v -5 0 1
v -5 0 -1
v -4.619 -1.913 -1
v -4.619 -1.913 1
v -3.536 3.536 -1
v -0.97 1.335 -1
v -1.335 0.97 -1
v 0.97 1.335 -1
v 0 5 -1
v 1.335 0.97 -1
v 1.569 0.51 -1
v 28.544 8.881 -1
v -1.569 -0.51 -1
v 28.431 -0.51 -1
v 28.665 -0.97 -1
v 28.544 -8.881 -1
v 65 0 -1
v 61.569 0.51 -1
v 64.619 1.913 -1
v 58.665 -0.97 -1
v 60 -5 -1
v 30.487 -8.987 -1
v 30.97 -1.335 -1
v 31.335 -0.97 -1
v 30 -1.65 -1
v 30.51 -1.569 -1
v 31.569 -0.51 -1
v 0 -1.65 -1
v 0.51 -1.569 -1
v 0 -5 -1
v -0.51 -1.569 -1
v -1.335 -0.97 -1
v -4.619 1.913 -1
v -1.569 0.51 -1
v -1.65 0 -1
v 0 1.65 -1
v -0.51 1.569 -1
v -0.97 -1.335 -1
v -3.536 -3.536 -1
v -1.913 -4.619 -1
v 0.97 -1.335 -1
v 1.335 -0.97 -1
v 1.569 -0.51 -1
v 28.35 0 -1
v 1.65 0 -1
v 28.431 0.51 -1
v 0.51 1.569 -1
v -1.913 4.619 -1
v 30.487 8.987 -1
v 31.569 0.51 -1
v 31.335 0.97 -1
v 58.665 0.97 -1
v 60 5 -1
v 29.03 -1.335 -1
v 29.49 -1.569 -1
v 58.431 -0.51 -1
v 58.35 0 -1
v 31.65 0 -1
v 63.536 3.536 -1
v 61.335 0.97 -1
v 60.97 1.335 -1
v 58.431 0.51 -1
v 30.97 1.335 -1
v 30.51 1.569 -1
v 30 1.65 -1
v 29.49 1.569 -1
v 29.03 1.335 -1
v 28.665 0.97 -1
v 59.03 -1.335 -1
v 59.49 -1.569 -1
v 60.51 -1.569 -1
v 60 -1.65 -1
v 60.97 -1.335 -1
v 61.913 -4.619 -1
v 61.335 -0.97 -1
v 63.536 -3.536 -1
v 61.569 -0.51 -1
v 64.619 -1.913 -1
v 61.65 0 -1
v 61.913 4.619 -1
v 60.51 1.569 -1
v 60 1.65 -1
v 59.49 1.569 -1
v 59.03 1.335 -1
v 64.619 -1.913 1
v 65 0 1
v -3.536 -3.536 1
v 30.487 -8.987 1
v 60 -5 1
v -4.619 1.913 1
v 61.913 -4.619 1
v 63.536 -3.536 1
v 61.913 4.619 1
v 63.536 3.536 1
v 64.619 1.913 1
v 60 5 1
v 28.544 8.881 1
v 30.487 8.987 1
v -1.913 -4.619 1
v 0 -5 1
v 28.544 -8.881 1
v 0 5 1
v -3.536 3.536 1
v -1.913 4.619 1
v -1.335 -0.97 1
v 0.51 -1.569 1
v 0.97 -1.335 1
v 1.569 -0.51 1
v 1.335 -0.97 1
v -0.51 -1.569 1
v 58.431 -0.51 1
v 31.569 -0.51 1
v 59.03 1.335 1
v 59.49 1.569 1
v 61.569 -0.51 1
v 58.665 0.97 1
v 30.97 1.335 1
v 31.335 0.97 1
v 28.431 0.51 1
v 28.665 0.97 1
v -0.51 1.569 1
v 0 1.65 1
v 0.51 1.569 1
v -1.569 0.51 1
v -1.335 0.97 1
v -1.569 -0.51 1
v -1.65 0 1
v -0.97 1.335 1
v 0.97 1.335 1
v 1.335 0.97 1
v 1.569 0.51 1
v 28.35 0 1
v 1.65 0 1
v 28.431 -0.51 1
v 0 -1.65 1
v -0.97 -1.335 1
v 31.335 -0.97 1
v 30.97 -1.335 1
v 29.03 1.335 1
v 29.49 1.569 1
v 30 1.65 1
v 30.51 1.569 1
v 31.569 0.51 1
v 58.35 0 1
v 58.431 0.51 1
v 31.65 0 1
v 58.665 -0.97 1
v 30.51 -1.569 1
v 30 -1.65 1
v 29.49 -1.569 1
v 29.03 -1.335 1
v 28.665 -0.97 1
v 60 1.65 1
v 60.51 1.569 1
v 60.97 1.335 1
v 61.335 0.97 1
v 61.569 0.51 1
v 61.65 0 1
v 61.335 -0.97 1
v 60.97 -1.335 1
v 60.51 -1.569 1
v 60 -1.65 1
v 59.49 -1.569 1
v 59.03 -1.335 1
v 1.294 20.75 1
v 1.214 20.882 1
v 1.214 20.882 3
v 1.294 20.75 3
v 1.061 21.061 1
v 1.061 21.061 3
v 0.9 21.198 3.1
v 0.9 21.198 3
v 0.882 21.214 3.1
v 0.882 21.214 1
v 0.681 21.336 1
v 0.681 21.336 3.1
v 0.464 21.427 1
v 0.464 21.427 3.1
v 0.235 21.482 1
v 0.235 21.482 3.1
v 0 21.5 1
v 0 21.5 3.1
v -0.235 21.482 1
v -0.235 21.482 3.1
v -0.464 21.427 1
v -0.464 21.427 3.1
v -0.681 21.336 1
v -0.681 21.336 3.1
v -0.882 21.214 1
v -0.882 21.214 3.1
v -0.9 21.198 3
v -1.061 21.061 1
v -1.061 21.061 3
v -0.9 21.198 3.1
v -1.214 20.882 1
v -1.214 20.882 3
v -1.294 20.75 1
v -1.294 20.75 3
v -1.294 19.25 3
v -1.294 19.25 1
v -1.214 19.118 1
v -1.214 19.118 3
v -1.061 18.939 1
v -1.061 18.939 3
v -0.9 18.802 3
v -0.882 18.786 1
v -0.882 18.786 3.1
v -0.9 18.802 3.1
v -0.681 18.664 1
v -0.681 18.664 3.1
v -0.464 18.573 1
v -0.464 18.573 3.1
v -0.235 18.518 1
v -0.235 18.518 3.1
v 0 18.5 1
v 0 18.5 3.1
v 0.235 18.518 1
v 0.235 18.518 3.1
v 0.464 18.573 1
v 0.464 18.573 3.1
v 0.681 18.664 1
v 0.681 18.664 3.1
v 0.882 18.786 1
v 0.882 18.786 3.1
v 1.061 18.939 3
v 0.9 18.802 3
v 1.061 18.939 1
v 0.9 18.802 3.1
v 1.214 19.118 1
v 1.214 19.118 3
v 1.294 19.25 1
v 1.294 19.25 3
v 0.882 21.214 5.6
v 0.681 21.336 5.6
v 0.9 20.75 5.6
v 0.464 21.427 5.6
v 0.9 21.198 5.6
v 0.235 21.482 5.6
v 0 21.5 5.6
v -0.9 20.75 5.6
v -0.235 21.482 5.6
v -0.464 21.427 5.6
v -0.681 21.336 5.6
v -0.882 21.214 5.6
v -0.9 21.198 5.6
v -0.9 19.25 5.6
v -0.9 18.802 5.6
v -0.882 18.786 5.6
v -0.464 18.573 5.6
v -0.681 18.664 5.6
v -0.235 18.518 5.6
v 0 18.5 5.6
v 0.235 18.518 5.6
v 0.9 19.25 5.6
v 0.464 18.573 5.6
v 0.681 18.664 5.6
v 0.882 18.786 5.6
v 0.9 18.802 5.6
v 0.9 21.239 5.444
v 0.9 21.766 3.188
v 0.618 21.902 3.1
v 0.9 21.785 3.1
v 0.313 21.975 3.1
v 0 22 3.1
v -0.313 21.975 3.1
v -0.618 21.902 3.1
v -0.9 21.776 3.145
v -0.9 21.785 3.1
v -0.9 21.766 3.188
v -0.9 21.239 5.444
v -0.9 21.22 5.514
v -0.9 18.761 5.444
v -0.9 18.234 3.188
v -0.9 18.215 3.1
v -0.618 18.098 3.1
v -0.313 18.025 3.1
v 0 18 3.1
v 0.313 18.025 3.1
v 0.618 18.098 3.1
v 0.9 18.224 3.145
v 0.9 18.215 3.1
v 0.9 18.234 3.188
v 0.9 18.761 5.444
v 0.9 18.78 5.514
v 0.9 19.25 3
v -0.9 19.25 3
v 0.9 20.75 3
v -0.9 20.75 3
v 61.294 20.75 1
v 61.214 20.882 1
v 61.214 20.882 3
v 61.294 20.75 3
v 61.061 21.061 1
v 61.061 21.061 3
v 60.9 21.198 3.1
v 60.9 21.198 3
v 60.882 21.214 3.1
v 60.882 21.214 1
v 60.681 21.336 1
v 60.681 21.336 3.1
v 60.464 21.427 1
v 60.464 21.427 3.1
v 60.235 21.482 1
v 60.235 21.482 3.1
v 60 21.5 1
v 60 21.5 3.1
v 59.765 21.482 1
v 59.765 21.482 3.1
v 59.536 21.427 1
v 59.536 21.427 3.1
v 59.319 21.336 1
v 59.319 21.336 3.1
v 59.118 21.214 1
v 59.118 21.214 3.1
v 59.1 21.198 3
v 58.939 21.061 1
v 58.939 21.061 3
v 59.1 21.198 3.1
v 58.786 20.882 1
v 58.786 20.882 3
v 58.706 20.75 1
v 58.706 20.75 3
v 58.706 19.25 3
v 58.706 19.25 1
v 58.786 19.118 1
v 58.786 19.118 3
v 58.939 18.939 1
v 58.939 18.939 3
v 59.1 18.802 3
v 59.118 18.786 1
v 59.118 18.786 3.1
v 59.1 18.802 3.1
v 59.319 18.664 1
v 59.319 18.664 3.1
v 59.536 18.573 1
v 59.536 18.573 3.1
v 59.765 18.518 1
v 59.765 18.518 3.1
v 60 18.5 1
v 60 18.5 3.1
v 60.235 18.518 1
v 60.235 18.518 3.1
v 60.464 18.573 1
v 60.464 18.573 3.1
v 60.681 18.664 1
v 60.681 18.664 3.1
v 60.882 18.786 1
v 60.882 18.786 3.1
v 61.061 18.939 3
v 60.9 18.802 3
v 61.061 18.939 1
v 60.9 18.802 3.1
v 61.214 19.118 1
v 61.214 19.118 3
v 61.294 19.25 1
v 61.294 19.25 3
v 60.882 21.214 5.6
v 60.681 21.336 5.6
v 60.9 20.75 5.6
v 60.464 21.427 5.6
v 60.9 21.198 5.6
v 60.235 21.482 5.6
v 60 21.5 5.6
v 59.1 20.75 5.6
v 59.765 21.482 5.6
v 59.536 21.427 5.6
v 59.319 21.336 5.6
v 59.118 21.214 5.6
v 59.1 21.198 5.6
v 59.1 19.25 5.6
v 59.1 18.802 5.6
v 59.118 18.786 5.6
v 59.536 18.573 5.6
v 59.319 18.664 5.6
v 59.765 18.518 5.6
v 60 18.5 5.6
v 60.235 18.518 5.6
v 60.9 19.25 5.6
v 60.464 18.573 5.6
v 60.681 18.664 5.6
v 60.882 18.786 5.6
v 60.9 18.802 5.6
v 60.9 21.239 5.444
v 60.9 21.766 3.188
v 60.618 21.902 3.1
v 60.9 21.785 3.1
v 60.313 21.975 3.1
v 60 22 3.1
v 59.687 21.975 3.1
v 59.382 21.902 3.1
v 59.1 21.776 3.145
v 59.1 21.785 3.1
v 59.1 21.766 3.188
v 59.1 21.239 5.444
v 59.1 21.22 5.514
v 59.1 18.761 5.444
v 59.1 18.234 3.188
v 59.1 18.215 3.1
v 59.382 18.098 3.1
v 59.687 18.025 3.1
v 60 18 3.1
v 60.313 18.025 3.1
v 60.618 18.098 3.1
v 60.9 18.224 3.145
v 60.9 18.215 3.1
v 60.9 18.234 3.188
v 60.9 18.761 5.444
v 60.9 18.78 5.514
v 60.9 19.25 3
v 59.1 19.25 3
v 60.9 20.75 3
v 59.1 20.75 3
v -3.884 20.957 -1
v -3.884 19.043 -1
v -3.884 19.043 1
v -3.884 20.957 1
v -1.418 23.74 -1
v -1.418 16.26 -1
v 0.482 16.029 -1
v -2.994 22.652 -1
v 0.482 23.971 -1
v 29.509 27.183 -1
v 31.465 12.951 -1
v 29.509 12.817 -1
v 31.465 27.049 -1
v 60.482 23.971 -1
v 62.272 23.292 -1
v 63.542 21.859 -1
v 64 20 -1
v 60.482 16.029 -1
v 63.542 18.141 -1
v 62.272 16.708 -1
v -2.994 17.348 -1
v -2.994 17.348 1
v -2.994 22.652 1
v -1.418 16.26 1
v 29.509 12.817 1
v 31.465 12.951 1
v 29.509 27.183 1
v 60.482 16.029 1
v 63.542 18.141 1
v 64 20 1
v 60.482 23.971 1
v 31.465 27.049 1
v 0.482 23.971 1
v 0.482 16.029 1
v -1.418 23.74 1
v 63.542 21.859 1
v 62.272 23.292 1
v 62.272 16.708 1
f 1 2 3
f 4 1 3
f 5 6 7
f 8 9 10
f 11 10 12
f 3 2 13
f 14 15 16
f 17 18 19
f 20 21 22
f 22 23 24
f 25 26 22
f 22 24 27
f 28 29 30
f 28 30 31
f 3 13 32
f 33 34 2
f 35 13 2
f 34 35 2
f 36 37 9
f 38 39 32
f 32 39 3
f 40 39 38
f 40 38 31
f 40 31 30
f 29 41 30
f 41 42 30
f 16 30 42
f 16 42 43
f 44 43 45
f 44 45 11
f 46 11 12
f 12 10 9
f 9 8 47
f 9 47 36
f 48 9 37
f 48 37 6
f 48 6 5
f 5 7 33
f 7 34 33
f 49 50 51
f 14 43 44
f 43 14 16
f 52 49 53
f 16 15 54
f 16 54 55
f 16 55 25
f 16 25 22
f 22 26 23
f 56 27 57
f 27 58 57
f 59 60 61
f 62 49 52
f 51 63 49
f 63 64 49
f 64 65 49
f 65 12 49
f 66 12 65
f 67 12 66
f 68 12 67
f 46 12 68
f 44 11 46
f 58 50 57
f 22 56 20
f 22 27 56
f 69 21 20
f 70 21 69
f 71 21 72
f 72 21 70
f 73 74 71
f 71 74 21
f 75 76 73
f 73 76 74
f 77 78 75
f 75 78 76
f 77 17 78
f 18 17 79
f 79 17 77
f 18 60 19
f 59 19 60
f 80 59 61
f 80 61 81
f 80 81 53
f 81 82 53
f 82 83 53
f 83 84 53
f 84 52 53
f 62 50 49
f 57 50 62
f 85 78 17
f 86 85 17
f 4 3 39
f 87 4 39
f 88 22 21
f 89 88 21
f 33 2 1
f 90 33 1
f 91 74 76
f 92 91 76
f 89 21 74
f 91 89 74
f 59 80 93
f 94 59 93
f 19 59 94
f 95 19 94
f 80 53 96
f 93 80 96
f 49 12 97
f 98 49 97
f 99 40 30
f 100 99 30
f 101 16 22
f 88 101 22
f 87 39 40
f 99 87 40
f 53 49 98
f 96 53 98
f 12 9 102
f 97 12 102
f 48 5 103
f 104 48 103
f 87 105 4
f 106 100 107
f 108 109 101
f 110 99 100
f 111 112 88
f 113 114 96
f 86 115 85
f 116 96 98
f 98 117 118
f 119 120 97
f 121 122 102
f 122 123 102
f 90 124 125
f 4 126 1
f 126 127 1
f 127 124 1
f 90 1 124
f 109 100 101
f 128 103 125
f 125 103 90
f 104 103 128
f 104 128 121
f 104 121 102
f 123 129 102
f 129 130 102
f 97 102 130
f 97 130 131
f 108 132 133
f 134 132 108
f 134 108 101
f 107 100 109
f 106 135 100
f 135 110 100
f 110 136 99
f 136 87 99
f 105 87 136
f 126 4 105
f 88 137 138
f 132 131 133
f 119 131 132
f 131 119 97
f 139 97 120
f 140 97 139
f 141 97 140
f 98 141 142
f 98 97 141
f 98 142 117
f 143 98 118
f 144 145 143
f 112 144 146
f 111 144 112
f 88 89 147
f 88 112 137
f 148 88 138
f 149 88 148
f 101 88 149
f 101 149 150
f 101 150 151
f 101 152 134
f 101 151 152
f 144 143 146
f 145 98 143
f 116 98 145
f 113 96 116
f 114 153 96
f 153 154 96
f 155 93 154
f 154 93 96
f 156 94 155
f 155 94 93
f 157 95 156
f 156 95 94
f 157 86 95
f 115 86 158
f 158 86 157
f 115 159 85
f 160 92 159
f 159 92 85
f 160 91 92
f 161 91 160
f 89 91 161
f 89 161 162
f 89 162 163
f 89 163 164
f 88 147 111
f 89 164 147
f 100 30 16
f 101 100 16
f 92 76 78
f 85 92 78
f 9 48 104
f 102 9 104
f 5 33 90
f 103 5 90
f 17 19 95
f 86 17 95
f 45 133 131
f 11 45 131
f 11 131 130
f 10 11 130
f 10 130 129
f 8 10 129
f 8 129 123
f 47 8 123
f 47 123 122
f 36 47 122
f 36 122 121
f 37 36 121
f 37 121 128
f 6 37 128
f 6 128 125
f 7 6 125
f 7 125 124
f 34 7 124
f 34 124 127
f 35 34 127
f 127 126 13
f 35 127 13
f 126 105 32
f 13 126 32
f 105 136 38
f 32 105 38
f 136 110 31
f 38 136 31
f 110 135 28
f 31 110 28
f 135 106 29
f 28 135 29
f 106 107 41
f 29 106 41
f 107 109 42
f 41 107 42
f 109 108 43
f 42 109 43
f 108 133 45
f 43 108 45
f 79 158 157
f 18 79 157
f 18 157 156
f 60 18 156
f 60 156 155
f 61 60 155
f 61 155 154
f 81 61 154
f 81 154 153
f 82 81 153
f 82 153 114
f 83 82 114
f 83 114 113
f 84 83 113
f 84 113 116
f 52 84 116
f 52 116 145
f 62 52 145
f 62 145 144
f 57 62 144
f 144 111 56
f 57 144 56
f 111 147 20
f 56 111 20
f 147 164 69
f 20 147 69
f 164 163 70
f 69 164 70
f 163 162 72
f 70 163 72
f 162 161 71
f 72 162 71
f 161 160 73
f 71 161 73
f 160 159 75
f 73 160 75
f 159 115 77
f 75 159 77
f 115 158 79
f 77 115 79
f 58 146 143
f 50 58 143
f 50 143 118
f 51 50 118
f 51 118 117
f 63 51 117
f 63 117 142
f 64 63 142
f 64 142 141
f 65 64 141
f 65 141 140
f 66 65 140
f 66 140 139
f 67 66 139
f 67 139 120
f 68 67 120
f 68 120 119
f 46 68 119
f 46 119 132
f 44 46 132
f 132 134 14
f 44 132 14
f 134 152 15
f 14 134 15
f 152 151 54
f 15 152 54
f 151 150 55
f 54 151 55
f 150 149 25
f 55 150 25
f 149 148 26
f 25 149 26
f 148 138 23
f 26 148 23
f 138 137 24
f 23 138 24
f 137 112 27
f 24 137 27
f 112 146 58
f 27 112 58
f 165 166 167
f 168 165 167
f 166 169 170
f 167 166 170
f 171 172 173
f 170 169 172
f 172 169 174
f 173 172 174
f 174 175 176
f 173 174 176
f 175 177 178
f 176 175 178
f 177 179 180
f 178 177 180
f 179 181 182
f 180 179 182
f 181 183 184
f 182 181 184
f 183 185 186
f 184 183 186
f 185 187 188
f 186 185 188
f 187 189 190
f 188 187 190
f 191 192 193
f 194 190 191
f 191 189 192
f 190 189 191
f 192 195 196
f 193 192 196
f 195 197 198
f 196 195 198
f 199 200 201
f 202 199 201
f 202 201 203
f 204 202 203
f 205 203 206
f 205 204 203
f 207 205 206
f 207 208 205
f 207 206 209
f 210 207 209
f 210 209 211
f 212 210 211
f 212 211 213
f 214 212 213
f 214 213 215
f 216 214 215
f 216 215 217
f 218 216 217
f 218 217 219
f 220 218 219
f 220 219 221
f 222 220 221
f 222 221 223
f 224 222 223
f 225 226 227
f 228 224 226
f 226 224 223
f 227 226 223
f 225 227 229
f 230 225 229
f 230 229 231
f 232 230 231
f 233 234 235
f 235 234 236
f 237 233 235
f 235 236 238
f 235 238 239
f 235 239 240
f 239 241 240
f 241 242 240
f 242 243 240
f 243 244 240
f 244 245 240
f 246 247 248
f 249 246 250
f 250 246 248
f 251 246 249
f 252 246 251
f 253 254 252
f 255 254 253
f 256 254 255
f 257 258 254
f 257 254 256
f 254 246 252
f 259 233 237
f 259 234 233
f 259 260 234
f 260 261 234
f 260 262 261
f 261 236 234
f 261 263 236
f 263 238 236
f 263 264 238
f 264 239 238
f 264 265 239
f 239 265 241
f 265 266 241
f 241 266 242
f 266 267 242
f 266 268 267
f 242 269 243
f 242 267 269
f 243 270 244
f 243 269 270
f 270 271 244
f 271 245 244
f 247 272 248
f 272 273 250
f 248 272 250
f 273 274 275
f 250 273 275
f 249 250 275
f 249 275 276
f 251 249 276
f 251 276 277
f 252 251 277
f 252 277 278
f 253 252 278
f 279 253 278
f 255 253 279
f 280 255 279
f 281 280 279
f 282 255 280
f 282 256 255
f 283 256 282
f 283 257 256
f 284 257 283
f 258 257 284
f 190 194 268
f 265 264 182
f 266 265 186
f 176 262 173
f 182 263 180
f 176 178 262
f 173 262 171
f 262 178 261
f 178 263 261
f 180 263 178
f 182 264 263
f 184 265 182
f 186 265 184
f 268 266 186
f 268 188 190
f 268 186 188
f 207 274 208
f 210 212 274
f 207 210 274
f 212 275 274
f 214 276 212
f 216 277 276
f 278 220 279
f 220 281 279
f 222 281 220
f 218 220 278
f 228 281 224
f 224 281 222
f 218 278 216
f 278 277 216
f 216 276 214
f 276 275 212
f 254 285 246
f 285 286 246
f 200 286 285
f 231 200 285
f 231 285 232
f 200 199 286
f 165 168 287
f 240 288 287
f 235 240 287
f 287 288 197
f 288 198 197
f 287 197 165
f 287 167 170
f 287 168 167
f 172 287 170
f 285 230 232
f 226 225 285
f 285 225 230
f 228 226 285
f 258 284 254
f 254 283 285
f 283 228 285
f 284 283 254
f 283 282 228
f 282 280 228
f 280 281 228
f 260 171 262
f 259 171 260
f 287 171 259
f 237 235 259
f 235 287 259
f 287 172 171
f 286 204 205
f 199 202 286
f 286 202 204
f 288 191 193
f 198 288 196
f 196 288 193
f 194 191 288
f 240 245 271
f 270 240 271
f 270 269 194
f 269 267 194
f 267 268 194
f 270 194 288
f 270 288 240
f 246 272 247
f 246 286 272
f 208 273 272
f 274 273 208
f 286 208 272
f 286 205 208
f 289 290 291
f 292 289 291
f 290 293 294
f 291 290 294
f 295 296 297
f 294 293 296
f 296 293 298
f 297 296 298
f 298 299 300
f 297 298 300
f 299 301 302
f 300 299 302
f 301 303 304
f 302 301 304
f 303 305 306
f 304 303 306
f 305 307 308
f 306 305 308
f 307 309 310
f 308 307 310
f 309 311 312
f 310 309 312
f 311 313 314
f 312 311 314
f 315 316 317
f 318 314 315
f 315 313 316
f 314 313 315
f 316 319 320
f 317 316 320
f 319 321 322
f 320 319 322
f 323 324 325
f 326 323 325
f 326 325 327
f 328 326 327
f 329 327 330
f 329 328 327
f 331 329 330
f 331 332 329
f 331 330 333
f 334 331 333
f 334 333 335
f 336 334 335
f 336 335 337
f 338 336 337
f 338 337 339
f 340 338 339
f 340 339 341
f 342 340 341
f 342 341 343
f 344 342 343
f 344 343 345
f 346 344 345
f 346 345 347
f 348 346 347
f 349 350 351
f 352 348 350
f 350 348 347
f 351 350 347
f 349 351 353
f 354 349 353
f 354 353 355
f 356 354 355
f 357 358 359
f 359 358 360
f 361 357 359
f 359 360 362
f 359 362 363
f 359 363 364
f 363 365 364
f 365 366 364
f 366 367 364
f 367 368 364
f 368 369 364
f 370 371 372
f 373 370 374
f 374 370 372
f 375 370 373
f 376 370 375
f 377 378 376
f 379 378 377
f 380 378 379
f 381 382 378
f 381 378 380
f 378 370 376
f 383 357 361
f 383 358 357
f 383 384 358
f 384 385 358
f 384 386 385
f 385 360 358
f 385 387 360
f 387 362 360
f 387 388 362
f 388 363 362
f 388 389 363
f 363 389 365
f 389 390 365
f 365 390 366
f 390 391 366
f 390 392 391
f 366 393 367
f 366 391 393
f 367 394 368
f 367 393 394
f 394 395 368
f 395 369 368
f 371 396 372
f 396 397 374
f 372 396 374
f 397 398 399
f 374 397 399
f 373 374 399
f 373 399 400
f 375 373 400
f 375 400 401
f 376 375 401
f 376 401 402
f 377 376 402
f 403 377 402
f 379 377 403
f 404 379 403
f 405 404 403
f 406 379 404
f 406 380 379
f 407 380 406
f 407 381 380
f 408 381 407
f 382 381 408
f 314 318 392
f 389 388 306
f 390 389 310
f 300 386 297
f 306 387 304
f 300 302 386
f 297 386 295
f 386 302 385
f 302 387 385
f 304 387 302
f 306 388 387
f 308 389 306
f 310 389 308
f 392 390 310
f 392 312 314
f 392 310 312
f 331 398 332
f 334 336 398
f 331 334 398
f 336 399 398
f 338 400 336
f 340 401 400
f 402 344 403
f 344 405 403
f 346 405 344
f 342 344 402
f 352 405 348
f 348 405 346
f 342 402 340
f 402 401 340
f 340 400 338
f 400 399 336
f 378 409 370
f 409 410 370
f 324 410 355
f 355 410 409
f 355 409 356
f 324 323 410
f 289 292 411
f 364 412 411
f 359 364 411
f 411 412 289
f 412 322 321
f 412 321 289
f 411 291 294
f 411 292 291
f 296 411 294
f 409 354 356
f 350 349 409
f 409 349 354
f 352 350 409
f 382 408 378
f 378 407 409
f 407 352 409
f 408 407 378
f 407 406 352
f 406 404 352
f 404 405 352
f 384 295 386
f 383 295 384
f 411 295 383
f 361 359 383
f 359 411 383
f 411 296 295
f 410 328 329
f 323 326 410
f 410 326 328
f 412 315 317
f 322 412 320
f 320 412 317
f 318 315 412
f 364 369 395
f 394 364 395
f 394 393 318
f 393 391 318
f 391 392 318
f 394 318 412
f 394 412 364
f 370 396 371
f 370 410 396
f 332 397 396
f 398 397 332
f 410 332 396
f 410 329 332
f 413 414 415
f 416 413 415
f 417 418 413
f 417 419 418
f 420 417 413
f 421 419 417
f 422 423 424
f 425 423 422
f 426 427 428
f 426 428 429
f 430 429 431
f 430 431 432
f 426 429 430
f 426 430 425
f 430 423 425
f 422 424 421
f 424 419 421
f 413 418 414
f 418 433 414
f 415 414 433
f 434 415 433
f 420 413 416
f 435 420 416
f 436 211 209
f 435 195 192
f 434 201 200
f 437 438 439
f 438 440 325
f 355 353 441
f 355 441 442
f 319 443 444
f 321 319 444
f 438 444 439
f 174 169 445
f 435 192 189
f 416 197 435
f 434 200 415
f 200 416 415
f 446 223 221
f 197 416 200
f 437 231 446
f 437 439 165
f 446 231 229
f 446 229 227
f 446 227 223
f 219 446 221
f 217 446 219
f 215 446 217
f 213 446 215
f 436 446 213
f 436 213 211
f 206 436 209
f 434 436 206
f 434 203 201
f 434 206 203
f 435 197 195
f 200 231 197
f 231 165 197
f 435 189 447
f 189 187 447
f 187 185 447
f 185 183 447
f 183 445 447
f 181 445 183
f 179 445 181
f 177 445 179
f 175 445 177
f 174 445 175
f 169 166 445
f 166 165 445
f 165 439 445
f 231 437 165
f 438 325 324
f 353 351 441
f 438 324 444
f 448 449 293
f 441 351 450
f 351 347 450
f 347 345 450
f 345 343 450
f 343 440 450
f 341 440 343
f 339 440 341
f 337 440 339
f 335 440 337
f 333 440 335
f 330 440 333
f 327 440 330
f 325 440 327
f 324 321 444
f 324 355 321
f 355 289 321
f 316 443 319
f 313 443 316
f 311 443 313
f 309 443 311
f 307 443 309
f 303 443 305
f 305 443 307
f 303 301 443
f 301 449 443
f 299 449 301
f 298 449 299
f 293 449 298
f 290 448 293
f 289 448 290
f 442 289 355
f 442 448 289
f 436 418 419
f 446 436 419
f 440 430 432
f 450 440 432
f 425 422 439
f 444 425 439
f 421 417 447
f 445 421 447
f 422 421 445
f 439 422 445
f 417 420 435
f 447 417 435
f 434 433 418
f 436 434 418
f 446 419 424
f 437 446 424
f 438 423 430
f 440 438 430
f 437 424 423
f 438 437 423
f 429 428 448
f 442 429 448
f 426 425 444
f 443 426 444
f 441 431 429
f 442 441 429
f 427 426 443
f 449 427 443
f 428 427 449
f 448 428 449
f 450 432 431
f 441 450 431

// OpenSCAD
//Hull test
clearance=0.6;

module beam(length,width,height,hole) {
	difference() {
		//Body
		hull(){
		cylinder(d=width,h=height,center=true);
		translate([length/2,0,0])
			cylinder(d=width*1.8,h=height,center=true);
		translate([length,0,0])
			cylinder(d=width,h=height,center=true);	
		};
		//Holes
		cylinder(d=hole+clearance/2,h=height*1.5,center=true,$fn=20);
		translate([length,0,0])
			cylinder(d=hole+clearance/2,h=height*1.5,center=true,$fn=20);
		translate([length/2,0,0])
			cylinder(d=hole+clearance/2,h=height*1.5,center=true,$fn=20);
	}
}

module rivet(length,diameter) {
//Length excludes that of clips, it's the lenght of the part that passes through
		head = 2.5;
		hdiameter = diameter + 1;
		difference() {
			union() {
				cylinder(d=diameter,h=length+clearance,$fn=40);
				translate([0,0,length-head+clearance])
					cylinder(r2=(diameter/2),r1=(hdiameter/2),h=head,$fn=40);	
				}
			translate([-diameter,-diameter/4,length-head-2])
				cube([diameter*2,diameter/2,head*3]);
			
				translate([diameter/2-clearance,-diameter,length-head+clearance-0.1])
					cube([diameter/2,diameter*2,head*3]);
			
				translate([-diameter+clearance,-diameter,length-head+clearance-0.1])
					cube([diameter/2,diameter*2,head*3]);
		}
		
}

module beam2(length,width,height) {
		//Body
		union() {
			hull(){
			cylinder(d=width,h=height,center=true);
			translate([length/2,0,0])
				cylinder(d=width*1.8,h=height,center=true);
			translate([length,0,0])
				cylinder(d=width,h=height,center=true);	
			};
			rivet(5,3);
			translate([length,0,0])
				rivet(5,3);
		}
}

beam(60,10,2,3);
translate([0,20,0])
		beam2(60,8,2);
